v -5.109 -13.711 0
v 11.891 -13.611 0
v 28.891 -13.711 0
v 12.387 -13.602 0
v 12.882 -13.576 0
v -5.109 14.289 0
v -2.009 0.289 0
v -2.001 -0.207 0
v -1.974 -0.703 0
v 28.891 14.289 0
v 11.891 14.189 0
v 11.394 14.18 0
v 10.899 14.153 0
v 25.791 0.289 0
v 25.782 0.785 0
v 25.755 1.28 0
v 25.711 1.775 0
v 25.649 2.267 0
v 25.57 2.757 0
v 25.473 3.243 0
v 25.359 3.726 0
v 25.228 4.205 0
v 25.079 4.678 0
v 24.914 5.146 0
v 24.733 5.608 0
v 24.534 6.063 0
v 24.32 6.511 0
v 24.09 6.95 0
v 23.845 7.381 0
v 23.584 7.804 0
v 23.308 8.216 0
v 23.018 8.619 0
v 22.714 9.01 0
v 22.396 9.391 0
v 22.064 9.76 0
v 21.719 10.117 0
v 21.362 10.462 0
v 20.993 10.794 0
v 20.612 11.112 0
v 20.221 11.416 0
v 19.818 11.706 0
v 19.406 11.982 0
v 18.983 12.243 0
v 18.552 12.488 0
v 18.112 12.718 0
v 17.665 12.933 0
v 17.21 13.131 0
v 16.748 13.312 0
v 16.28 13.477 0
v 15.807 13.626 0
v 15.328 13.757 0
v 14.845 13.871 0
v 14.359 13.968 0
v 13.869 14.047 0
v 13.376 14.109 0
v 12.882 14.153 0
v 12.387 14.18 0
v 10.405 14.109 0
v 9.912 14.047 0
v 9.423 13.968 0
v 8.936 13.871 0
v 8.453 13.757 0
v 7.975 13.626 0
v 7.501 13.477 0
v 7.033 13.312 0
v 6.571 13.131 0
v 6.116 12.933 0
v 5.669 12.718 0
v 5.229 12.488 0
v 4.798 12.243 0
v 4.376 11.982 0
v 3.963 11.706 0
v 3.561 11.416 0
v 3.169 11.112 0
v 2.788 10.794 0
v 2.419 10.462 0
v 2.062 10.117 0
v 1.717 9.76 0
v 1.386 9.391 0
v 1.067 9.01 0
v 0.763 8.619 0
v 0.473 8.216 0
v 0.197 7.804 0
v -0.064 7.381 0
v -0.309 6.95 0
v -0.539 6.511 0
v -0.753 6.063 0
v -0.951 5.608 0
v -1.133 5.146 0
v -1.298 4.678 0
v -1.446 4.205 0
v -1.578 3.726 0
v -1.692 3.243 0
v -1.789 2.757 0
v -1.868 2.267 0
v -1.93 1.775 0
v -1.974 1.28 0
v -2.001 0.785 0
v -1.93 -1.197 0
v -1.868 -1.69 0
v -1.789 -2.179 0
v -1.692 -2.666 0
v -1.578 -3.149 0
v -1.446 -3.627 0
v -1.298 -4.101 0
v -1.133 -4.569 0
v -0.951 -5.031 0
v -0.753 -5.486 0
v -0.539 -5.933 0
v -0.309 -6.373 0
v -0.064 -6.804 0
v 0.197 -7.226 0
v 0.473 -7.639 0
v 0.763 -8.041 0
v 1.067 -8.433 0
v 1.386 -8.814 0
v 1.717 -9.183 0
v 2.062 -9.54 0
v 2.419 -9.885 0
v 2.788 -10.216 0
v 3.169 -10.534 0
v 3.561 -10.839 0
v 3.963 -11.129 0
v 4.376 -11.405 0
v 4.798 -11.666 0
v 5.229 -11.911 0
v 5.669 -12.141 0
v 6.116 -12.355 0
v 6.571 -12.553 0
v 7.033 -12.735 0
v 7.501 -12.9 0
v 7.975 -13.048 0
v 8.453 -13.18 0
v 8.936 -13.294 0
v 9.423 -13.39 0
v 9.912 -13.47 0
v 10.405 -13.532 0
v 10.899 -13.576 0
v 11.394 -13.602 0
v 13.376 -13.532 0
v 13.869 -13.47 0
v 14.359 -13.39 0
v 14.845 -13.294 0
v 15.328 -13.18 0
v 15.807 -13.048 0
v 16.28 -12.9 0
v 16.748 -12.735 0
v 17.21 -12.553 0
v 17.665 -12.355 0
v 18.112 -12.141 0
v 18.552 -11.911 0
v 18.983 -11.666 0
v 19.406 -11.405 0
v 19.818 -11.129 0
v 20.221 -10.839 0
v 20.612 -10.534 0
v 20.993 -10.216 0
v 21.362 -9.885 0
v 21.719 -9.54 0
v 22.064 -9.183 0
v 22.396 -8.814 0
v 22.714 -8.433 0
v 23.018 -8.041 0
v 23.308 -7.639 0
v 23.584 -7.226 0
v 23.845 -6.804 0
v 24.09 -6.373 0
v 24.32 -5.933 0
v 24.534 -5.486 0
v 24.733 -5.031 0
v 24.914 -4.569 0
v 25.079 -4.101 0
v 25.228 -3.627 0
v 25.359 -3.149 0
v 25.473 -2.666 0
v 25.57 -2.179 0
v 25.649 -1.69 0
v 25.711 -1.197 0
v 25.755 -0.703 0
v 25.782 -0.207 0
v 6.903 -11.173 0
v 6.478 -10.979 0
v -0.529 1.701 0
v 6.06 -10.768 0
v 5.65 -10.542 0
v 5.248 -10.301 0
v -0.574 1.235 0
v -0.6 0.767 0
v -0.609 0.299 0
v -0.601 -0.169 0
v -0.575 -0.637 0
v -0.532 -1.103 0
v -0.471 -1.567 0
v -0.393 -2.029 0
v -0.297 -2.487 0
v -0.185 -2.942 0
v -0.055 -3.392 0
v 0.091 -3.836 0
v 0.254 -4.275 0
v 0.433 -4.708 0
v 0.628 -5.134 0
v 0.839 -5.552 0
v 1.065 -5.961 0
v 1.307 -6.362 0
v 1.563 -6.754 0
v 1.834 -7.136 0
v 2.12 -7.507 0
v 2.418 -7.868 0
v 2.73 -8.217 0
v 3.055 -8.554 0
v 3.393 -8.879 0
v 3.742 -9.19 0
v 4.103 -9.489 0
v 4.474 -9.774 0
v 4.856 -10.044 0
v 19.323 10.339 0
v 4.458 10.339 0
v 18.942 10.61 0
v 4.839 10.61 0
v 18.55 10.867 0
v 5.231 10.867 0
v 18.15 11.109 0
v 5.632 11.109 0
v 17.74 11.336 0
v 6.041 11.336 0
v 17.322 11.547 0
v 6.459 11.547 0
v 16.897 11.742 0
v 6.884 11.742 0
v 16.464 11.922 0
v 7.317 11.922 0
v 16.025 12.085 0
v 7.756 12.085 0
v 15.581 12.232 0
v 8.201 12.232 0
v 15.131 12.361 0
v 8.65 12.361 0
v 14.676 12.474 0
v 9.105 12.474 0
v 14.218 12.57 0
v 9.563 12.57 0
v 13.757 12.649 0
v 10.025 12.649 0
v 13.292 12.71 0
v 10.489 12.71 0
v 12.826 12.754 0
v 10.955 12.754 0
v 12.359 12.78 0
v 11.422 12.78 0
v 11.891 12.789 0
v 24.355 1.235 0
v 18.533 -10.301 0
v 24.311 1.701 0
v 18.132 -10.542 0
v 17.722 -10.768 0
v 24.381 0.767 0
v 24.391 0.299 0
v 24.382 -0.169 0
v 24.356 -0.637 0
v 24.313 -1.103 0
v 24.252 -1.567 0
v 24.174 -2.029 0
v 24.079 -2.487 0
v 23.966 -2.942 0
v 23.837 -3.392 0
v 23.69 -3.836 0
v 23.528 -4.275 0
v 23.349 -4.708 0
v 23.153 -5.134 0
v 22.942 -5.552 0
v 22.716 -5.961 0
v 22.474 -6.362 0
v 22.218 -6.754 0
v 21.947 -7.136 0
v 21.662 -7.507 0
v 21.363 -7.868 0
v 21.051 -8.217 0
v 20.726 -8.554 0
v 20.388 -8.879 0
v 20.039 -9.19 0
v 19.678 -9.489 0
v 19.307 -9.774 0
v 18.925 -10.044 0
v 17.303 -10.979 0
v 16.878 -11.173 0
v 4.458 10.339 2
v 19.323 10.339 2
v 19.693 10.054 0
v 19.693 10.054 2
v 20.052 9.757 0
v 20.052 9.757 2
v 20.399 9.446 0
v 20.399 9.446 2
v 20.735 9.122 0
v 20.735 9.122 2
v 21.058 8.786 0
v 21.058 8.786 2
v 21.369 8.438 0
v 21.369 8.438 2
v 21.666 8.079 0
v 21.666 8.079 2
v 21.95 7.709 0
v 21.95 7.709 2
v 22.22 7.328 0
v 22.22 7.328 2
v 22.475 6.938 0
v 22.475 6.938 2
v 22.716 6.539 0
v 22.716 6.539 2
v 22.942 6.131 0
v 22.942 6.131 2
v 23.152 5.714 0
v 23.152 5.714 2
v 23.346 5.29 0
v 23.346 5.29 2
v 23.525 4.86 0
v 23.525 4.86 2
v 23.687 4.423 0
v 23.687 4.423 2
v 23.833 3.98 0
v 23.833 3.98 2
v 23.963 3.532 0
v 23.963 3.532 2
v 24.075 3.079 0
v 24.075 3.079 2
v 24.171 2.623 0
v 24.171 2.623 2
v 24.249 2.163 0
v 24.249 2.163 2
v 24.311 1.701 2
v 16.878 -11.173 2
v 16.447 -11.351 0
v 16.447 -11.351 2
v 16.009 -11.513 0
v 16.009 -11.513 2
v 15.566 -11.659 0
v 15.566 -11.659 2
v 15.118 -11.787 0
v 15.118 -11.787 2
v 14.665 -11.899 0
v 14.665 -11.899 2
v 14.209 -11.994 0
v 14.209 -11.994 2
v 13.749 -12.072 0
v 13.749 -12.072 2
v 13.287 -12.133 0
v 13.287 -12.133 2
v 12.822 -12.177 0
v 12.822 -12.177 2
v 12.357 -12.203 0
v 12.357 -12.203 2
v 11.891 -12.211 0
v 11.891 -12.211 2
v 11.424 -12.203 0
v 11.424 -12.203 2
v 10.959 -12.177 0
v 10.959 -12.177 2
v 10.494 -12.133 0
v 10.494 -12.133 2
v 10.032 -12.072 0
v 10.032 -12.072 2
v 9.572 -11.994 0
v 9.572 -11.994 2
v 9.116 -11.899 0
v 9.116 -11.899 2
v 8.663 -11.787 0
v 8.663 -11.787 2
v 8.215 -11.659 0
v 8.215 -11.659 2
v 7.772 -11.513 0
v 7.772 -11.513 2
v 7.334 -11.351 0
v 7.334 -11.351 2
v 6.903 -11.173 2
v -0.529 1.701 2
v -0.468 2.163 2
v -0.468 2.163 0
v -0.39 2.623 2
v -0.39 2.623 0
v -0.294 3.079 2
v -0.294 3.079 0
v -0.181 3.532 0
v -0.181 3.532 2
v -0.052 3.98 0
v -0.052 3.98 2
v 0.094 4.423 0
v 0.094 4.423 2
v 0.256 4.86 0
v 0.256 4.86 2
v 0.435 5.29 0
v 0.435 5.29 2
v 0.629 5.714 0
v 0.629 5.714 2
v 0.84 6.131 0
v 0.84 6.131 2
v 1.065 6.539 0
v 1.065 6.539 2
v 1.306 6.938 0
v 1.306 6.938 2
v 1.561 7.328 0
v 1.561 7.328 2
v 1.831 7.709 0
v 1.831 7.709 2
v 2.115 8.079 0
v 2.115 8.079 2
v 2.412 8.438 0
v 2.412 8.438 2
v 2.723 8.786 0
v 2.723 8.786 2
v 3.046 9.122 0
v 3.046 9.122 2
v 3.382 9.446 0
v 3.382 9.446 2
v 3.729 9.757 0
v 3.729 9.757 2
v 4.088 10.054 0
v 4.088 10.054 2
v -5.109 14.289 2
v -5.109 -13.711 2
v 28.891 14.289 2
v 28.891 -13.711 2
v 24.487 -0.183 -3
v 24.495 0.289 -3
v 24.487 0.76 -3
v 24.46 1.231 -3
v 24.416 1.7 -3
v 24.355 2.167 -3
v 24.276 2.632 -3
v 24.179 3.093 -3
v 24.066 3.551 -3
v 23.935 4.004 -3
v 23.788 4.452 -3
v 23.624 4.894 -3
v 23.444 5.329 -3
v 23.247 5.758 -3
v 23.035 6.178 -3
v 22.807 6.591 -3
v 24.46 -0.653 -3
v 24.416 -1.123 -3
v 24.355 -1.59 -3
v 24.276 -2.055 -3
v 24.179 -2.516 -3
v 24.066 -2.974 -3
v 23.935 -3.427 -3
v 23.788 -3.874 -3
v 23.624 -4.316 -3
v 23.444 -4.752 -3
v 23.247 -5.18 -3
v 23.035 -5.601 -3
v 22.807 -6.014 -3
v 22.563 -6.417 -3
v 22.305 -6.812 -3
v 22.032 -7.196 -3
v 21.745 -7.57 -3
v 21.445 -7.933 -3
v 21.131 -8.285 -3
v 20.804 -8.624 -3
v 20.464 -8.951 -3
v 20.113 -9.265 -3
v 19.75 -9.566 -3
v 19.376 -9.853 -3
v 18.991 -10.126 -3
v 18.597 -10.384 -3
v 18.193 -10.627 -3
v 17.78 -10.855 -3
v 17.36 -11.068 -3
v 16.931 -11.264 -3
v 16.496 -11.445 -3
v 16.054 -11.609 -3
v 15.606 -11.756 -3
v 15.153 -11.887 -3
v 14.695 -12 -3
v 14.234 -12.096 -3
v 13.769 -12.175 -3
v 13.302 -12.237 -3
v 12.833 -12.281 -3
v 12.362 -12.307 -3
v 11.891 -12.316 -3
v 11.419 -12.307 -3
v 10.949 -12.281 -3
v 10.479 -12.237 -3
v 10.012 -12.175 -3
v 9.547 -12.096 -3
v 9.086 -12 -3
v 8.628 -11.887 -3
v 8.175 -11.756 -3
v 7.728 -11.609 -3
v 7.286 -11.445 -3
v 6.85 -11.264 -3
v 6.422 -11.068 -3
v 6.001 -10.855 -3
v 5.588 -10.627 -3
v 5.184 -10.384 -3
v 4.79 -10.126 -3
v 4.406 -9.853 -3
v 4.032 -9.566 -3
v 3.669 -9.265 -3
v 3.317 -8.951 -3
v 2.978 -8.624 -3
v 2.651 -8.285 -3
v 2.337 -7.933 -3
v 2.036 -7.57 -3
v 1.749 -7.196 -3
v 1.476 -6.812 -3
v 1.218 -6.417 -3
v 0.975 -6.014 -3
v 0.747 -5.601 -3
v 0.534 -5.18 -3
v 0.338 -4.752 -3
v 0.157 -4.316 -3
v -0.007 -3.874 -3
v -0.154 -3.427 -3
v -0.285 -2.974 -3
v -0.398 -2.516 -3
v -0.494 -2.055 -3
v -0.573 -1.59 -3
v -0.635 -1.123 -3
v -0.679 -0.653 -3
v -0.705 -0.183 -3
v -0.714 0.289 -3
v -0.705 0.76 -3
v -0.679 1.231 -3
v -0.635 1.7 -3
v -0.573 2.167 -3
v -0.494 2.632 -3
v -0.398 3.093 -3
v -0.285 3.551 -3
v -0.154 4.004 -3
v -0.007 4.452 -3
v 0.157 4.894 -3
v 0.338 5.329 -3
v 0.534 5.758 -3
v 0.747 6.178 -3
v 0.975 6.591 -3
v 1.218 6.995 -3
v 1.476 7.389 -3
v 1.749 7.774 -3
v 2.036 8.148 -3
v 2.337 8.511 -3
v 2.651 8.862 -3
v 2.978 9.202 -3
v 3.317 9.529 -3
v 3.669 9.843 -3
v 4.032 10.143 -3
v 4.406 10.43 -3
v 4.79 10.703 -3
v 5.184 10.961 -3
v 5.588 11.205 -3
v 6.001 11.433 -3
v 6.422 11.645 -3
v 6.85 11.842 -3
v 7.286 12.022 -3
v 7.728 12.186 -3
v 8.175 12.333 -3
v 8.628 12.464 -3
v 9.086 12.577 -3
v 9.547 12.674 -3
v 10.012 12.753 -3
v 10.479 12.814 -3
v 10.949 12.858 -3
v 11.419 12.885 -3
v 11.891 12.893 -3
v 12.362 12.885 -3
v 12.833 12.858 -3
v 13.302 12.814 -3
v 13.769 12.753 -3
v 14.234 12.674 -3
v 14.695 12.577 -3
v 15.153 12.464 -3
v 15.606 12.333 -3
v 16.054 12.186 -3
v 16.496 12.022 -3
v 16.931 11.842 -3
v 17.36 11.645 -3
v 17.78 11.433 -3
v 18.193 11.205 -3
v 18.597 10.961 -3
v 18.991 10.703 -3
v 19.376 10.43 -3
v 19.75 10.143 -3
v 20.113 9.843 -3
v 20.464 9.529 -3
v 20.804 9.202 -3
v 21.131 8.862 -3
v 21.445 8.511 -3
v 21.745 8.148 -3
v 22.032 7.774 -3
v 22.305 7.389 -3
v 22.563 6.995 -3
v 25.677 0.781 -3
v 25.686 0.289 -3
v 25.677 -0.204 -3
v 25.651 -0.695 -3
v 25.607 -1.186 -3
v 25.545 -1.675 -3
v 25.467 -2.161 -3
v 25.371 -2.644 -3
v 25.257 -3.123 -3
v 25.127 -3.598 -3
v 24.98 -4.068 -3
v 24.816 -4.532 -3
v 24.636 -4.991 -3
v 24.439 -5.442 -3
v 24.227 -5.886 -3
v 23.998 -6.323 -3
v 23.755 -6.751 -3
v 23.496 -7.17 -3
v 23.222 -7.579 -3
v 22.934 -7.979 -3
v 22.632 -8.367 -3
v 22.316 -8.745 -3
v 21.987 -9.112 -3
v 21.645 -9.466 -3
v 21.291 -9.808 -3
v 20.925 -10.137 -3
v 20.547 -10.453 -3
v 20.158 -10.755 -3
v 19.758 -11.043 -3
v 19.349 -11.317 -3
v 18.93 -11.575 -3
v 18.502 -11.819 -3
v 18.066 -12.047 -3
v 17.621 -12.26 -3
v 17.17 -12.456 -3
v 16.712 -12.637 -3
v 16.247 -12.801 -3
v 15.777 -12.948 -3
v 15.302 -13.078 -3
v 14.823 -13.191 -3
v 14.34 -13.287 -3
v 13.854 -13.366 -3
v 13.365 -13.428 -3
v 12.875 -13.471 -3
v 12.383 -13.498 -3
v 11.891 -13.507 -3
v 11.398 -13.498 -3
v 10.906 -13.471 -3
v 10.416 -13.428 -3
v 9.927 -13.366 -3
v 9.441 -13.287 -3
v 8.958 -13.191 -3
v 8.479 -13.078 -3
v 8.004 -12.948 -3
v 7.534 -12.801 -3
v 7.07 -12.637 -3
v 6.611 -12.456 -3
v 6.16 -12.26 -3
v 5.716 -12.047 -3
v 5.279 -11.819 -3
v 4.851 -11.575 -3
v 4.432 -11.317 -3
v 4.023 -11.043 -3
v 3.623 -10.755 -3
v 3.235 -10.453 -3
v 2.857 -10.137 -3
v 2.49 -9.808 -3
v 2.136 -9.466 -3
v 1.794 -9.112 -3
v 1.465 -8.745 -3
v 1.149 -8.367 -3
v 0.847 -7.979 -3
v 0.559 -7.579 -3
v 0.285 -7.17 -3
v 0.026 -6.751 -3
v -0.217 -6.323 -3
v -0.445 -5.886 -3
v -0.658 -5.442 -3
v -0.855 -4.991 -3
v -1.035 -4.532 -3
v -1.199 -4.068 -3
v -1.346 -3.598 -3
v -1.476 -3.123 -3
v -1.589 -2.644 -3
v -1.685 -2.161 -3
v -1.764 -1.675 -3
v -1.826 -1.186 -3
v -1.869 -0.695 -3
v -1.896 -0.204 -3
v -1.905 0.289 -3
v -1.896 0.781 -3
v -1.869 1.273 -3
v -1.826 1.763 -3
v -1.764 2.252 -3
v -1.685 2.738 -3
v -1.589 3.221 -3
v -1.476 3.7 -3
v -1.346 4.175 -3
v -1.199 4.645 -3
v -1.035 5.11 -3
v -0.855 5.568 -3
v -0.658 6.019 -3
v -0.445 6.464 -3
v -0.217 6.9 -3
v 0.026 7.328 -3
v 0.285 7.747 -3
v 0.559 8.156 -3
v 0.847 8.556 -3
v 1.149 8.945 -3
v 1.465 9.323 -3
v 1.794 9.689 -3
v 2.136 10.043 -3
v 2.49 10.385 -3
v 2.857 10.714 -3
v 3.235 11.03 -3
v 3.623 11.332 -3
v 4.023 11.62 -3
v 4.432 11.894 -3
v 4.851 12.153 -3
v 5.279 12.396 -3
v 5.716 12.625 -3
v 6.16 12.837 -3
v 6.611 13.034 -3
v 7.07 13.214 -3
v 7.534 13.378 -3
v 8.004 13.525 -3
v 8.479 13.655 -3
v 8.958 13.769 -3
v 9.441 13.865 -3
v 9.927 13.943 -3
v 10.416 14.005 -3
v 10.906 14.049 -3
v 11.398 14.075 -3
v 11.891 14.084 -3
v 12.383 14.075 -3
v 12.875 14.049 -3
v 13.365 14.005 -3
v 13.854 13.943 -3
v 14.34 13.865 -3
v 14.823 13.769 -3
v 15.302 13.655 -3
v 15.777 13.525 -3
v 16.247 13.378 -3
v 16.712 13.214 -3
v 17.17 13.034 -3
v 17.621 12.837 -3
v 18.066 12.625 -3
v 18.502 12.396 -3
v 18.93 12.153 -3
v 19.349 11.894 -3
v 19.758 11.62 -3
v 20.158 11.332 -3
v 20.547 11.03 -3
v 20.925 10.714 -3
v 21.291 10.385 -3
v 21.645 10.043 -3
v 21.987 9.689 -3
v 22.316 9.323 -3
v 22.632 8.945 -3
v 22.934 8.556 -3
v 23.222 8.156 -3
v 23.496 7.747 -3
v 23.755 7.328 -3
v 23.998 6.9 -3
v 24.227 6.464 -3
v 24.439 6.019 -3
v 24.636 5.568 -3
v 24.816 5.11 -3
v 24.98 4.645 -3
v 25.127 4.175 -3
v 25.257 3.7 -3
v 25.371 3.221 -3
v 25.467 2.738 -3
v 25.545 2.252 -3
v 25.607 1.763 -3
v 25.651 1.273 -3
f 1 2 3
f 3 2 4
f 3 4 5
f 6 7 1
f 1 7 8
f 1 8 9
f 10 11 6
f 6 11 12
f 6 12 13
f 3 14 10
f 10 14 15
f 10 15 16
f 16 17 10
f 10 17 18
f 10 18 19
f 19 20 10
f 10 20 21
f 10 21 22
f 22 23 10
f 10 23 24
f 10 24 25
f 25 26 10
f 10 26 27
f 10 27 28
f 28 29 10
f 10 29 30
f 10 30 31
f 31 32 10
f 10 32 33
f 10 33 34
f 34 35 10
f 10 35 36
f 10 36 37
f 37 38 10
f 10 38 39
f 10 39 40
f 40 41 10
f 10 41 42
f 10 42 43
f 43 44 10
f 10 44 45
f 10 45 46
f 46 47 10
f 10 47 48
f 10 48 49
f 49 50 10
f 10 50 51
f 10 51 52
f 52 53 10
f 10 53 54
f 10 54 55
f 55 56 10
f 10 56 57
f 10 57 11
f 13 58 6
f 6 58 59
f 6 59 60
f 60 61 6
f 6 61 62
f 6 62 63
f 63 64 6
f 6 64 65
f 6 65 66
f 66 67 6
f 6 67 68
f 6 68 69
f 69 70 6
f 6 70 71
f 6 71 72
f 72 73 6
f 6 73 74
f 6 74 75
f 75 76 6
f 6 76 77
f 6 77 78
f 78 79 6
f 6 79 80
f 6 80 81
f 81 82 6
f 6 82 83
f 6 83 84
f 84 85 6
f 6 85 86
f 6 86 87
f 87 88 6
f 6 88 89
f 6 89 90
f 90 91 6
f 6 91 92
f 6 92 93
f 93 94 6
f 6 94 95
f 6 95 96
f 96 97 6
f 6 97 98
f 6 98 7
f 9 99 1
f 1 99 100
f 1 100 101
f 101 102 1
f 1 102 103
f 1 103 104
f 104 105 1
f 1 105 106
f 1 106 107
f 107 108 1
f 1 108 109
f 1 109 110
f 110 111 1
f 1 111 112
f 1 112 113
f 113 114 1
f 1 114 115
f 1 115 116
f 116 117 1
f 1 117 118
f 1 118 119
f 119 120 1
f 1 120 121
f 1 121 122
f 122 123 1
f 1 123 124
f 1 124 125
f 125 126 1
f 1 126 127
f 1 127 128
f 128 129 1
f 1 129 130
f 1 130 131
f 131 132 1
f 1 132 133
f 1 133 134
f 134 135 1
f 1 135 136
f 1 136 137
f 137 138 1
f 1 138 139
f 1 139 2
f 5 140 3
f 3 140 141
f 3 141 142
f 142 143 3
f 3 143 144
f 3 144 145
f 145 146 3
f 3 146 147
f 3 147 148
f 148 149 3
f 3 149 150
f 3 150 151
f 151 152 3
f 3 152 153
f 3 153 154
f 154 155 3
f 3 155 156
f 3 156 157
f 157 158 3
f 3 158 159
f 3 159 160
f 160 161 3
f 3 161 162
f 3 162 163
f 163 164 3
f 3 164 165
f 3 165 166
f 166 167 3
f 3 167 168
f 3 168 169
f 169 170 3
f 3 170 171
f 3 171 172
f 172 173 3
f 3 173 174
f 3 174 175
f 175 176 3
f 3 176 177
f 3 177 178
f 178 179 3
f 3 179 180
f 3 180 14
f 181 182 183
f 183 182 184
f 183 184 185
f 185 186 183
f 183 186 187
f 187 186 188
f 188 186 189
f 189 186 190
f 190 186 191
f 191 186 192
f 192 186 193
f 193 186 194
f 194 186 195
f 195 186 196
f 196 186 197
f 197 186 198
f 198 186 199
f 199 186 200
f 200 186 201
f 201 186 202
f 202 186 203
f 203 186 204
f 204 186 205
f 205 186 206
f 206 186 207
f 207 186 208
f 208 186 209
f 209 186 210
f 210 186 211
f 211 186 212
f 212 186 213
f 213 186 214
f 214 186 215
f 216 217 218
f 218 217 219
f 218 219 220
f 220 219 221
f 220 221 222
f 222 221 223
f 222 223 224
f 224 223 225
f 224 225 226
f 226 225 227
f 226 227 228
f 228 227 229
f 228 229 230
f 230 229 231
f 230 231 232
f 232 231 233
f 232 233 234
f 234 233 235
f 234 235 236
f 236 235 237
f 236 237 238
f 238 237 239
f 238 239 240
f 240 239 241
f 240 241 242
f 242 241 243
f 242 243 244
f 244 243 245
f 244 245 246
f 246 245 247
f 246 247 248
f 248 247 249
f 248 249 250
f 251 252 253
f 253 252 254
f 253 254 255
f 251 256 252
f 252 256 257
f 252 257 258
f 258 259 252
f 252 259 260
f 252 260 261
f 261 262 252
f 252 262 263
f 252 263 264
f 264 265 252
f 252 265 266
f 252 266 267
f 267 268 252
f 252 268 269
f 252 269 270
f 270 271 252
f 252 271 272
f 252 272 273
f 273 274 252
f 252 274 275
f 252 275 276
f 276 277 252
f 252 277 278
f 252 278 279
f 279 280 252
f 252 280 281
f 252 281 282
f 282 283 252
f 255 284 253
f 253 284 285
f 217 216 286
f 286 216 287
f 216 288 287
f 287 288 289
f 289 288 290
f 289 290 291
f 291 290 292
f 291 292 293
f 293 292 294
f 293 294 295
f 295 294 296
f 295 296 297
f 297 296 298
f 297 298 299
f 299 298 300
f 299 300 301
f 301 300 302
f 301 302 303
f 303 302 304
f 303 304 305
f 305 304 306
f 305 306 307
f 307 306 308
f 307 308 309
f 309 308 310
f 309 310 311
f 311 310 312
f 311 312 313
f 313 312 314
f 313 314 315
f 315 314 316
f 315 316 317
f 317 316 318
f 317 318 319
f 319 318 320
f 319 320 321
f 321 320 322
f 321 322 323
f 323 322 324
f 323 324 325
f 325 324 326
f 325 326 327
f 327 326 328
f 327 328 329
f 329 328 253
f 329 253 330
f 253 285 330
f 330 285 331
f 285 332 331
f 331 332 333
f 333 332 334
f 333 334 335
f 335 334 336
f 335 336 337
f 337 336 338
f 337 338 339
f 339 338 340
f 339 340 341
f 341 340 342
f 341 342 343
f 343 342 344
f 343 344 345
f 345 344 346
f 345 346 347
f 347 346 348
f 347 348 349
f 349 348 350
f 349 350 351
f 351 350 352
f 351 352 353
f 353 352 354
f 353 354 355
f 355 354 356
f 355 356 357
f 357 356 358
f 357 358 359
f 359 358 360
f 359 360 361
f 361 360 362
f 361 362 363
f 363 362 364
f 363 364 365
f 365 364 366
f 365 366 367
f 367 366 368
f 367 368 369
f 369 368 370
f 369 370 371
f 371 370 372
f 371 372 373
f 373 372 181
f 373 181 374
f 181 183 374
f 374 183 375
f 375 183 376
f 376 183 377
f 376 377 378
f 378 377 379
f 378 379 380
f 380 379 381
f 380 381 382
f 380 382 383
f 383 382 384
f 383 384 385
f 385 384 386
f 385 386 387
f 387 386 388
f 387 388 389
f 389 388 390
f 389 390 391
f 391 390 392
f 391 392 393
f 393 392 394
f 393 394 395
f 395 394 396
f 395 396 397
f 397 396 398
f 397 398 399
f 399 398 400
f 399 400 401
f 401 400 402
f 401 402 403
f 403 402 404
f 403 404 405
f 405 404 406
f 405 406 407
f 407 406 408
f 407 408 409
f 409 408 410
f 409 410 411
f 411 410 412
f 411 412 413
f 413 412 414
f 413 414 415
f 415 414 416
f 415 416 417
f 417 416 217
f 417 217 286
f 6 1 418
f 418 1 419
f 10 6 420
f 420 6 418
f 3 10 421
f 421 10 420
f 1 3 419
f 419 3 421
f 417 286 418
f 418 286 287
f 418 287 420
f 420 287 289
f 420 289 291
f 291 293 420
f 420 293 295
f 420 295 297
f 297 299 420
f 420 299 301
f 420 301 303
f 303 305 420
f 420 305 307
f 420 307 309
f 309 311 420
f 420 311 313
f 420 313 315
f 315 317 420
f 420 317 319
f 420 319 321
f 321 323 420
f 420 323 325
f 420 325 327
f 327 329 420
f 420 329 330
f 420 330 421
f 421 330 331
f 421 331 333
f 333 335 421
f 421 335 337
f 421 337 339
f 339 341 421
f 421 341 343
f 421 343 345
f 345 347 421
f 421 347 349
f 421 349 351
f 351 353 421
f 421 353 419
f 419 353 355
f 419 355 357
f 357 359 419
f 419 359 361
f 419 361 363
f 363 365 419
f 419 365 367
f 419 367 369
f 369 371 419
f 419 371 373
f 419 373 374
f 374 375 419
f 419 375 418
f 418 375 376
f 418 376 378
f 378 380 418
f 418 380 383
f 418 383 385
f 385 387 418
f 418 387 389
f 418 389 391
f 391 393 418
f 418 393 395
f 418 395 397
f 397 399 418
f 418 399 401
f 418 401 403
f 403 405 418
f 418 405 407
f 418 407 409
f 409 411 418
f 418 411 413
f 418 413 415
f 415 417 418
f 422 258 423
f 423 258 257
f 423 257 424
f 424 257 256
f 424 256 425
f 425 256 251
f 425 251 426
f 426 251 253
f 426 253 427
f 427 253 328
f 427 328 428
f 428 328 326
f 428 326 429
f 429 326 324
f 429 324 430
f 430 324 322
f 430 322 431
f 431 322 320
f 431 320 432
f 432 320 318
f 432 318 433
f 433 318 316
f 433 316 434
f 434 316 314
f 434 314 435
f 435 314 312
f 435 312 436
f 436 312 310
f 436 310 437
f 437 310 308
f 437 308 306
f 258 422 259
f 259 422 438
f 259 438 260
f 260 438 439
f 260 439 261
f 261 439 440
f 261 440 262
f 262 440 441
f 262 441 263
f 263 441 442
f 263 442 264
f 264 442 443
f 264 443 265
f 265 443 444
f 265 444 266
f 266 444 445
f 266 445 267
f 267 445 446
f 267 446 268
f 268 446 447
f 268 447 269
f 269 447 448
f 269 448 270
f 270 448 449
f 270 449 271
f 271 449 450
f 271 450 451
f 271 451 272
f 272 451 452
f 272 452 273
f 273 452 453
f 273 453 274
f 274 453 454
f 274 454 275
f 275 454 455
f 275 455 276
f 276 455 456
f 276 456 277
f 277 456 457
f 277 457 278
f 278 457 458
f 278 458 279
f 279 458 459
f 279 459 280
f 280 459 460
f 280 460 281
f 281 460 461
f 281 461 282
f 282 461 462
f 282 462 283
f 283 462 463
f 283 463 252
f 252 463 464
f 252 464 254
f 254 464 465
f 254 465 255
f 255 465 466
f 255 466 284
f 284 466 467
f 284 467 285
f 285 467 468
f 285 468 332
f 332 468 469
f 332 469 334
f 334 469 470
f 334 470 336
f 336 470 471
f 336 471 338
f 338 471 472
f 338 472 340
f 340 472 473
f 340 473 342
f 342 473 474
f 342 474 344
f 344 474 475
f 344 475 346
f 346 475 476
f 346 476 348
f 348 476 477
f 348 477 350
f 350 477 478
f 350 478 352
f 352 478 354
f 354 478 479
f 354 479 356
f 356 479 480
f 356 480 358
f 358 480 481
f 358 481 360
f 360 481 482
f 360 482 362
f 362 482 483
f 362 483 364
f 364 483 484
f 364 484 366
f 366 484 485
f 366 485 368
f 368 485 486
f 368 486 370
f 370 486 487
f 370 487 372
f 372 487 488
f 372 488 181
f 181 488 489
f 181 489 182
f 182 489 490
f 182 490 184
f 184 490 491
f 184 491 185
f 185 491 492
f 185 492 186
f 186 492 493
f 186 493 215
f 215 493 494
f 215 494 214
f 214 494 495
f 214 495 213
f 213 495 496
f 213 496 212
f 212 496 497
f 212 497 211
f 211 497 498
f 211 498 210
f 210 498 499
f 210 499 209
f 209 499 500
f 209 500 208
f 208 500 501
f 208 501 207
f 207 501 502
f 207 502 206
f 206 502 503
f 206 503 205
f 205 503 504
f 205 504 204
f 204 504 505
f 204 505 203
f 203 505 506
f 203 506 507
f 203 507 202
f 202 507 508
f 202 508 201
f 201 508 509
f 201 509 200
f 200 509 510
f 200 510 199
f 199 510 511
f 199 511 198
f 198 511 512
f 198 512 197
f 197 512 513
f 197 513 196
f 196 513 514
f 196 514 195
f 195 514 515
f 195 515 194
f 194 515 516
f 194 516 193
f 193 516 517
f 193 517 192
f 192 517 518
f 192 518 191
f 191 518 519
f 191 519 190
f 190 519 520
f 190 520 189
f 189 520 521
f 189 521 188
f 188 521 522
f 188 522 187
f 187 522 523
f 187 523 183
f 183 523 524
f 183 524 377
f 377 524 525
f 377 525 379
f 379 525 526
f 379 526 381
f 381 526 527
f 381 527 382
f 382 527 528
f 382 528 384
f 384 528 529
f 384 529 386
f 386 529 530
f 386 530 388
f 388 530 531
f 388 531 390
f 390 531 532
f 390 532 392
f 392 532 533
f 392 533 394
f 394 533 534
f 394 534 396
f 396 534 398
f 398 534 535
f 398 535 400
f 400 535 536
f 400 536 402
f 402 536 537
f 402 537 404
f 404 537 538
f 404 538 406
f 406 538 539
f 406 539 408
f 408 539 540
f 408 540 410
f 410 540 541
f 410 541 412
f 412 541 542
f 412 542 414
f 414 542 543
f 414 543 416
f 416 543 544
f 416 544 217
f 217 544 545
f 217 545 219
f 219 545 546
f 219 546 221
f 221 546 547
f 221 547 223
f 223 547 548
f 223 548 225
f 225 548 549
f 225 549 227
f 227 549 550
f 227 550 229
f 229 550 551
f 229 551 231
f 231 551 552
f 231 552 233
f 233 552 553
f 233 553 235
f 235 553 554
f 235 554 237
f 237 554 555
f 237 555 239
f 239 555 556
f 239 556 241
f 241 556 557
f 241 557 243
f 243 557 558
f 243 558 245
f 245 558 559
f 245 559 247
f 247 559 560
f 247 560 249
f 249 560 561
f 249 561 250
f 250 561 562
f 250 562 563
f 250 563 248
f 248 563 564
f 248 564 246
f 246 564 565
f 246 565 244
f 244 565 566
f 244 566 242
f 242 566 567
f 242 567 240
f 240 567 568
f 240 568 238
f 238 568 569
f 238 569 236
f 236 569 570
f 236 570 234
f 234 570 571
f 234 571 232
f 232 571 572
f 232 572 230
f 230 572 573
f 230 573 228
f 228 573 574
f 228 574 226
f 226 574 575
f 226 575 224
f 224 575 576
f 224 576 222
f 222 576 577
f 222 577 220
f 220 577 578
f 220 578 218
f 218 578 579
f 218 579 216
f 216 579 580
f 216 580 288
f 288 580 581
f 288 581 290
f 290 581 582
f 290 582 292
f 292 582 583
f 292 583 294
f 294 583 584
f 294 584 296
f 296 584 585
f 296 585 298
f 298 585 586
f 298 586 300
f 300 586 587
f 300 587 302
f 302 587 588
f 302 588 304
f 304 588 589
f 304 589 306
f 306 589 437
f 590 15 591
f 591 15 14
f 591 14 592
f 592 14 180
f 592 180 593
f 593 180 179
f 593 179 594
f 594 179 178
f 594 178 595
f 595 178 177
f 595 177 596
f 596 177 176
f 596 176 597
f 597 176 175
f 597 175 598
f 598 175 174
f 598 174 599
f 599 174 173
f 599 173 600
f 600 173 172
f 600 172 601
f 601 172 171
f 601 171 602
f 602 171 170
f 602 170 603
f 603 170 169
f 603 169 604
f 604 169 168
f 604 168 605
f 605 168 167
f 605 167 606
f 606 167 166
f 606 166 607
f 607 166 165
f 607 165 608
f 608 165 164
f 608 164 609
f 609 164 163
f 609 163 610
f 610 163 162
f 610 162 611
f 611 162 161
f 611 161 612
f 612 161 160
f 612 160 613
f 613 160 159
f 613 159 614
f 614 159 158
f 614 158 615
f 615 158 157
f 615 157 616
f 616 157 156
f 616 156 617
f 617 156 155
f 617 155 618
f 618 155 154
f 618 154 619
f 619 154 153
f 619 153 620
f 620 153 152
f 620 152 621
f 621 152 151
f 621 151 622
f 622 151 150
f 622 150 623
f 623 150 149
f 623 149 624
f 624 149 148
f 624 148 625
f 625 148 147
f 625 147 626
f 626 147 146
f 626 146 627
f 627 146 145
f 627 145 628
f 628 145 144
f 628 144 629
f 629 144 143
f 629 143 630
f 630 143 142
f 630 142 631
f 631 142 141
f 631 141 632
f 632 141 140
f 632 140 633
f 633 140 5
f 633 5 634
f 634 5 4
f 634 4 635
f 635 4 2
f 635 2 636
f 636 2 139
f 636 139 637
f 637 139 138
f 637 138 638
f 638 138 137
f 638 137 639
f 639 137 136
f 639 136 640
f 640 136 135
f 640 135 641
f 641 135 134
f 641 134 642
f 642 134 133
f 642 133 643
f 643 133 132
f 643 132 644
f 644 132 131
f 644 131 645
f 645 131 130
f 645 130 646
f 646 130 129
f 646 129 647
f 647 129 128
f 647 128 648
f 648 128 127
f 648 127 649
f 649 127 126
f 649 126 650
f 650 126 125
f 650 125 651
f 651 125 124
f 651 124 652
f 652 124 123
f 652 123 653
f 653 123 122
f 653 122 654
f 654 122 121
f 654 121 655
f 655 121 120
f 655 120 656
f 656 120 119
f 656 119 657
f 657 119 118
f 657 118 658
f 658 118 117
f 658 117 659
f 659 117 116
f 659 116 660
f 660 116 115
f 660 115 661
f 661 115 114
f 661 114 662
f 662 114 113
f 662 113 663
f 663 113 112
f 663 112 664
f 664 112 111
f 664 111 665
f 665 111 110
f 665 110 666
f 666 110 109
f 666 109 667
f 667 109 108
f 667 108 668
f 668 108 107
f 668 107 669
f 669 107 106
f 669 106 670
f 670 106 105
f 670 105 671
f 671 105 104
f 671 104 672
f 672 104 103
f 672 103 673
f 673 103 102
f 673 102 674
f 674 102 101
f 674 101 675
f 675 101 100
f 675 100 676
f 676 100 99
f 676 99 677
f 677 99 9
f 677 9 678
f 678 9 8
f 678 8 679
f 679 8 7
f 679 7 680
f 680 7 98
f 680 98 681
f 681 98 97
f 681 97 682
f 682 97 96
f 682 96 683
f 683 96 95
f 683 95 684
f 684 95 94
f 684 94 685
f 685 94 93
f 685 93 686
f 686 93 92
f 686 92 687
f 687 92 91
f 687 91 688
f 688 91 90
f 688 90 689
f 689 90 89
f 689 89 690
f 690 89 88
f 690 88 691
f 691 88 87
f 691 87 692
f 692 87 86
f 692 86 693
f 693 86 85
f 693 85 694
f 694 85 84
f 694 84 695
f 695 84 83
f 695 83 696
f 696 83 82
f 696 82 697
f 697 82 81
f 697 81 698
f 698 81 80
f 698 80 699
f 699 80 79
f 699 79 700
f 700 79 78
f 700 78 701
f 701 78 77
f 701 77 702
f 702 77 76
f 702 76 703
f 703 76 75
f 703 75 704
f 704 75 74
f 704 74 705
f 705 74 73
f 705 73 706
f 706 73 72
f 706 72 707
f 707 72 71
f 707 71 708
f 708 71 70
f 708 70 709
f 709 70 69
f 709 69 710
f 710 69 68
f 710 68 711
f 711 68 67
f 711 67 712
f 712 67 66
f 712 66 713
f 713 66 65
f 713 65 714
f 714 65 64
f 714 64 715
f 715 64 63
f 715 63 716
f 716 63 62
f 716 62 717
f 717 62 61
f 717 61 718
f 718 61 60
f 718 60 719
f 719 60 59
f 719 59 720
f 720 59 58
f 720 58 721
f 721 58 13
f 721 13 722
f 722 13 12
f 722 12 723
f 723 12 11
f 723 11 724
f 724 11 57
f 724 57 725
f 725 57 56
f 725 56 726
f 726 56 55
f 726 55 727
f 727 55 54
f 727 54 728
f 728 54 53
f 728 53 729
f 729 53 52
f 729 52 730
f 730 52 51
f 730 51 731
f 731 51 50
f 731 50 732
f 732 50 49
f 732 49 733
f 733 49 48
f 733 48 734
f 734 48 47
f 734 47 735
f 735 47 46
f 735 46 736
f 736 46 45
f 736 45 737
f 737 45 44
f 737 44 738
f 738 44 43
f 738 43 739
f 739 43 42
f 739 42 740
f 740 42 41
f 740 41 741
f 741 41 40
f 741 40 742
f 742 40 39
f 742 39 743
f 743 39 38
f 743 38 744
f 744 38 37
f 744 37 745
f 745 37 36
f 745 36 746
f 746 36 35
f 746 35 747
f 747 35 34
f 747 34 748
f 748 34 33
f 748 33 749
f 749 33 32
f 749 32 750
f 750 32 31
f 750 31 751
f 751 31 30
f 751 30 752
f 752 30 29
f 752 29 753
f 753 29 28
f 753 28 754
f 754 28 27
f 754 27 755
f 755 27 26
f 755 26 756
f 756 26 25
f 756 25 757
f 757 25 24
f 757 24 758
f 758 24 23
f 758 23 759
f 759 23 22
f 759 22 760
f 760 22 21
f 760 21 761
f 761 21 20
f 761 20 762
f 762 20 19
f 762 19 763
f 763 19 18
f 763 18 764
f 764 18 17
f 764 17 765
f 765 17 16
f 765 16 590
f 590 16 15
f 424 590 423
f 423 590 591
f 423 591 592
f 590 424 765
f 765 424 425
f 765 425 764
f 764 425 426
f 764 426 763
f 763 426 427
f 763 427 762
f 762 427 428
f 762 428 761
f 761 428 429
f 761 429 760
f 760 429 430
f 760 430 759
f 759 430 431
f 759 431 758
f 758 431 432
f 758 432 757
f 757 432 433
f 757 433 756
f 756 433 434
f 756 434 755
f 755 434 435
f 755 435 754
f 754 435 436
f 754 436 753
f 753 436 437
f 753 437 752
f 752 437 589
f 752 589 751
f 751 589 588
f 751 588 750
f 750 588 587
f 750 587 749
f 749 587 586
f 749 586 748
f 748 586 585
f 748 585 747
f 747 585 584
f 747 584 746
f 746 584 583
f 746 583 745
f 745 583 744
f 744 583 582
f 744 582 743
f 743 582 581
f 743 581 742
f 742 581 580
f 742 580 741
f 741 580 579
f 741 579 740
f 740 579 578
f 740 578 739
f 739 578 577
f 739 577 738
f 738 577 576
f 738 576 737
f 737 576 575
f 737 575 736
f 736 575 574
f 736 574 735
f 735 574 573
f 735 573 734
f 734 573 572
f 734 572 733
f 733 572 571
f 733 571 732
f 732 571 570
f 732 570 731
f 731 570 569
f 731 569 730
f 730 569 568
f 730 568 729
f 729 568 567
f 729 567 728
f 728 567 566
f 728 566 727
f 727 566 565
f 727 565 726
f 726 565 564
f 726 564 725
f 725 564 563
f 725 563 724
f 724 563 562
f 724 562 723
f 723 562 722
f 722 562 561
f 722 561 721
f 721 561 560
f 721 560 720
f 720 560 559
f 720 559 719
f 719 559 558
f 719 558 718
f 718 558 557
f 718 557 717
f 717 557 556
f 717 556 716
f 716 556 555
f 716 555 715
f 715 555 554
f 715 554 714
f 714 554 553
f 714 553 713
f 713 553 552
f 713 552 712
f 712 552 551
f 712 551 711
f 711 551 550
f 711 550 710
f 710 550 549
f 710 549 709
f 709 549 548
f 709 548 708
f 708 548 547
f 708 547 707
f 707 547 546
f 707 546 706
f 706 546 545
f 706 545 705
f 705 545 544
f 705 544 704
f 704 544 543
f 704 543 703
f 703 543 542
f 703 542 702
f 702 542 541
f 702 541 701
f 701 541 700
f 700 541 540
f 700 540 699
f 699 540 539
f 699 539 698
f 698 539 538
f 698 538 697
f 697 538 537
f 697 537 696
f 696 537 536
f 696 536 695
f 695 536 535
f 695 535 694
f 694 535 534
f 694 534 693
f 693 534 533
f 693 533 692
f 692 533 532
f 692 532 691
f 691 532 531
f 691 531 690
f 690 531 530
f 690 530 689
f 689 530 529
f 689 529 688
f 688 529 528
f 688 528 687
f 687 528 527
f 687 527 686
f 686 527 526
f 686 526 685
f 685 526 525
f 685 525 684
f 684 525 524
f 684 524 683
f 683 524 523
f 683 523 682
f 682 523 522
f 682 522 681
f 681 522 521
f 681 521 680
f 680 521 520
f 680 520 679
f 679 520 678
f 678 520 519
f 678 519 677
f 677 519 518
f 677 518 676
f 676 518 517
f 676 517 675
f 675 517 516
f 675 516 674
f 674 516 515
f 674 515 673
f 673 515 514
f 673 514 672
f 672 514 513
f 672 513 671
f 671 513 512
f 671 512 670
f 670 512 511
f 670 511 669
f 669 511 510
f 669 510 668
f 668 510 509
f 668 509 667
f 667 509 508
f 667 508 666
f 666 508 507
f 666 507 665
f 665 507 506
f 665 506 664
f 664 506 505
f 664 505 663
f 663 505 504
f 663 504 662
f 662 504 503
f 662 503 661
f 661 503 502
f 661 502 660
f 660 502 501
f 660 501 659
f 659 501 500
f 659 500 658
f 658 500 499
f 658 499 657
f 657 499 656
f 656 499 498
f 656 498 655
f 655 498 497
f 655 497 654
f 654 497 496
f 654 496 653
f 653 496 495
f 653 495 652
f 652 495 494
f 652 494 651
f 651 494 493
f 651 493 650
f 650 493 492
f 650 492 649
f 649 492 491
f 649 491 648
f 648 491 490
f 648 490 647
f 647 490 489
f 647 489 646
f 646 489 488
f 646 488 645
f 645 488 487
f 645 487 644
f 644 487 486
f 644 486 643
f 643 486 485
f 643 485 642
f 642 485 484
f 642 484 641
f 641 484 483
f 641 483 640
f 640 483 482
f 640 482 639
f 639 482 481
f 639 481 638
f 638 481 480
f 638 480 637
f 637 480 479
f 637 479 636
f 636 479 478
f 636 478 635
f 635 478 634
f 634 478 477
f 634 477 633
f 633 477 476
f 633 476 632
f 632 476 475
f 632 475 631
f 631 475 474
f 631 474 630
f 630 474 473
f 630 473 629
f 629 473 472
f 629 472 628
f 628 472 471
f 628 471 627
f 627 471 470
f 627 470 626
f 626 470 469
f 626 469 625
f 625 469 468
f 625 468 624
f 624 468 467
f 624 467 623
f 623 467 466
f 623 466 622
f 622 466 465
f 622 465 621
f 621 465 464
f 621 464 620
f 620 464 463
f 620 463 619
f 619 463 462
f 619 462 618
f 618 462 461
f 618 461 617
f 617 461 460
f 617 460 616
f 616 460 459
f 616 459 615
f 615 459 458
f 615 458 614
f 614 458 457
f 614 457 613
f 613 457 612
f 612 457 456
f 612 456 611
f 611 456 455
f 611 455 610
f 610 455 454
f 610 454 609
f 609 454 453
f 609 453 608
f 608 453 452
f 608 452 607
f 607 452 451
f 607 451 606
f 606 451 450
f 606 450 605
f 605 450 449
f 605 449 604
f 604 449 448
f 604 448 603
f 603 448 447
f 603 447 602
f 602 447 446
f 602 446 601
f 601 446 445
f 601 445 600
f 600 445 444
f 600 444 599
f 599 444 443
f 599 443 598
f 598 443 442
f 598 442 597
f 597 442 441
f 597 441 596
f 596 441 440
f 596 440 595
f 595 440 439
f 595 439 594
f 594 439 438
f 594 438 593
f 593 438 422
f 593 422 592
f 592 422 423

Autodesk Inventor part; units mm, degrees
ref_plane "YZ Plane" through (0, 0, 0) normal (1, 0, 0) x (0, 1, 0)
ref_plane "XZ Plane" through (0, 0, 0) normal (0, 1, 0) x (-1, 0, 0)
ref_plane "XY Plane" through (0, 0, 0) normal (0, 0, 1) x (1, 0, 0)
ref_plane "Work Plane1" through (0, 0, 0) normal (0, 0, 1) x (1, 0, 0)
sketch "Sketch1" plane through (0, 0, 0) normal (0, 0, 1) x (1, 0, 0)
  circle A0 centre (11.8906, 0.2887) radius 14 construction
  line L0 (-4.1094, 7.6362) -> (-12.7094, 0.2473) construction
  line L1 (-5.7094, 0.2473) -> (-12.7094, 0.2473) construction
  line L2 (-5.7094, -6.0861) -> (-5.7094, 0.2473) construction
  line L3 (-6.0301, -6.0861) -> (-5.7094, -6.0861) construction
  line L4 (-6.0301, -6.0861) -> (-4.1094, -7.5697) construction
  line L5 (-4.1094, -7.5697) -> (-4.1094, -15.7113) construction
  line L6 (-4.1094, -15.7113) -> (27.8906, -15.7113) construction
  line L7 (27.8906, -15.7113) -> (27.8906, -7.5697) construction
  line L8 (29.8113, -6.0861) -> (27.8906, -7.5697) construction
  line L9 (29.4906, -6.0861) -> (29.8113, -6.0861) construction
  line L10 (29.4906, 0.2473) -> (29.4906, -6.0861) construction
  line L11 (36.4906, 0.2473) -> (29.4906, 0.2473) construction
  line L12 (27.8906, 7.6362) -> (36.4906, 0.2473) construction
  line L13 (27.8906, 7.6362) -> (27.8906, 16.2887) construction
  line L14 (27.8906, 16.2887) -> (-4.1094, 16.2887) construction
  line L15 (-4.1094, 16.2887) -> (-4.1094, 7.6362) construction
  circle A1 centre (11.8906, 0.2887) radius 13.9
  circle A2 centre (11.8906, 0.2887) radius 12.5
  point P0 (0, 0)
  dimension "d0" = 27.8
  dimension "d1" = 25
extrude "Extrusion1" add sketch "Sketch1" against normal blind 3 draft -2
sketch "Sketch2" plane through (11.8906, 0.2887, 0) normal (0, 0, 1) x (1, 0, 0)
  circle A0 centre (0, 0) radius 13.9 projected
  circle A1 centre (0, 0) radius 12.5 projected
  line L0 (17, -14) -> (-17, -14)
  line L1 (-17, -14) -> (-17, 14)
  line L2 (-17, 14) -> (17, 14)
  line L3 (17, 14) -> (17, -14)
  line L4 (17, -14) -> (-17, 14) construction
  line L5 (-17, -14) -> (17, 14) construction
  circle A2 centre (0, 0) radius 10.05 construction
  line L6 (-7.4329, 10.05) -> (7.4329, 10.05)
  line L7 (-12.42, 1.4121) -> (-4.9871, -11.4621)
  line L8 (4.9871, -11.4621) -> (12.42, 1.4121)
  point P0 (-11.8906, -0.2887)
  dimension "d4" = 34
  dimension "d5" = 28
  dimension "d8" = 20.1
  dimension "d9" = 60
  dimension "d10" = 60
  dimension "d11" = 0
extrude "Extrusion2" add sketch "Sketch2" along normal blind 2 contours A0 | A1 L8 | L6 A1 | A1 L7 | L0 L1 L2 L3
properties part number "20_Cube_Insert_Z-Focus_objectivemount"
